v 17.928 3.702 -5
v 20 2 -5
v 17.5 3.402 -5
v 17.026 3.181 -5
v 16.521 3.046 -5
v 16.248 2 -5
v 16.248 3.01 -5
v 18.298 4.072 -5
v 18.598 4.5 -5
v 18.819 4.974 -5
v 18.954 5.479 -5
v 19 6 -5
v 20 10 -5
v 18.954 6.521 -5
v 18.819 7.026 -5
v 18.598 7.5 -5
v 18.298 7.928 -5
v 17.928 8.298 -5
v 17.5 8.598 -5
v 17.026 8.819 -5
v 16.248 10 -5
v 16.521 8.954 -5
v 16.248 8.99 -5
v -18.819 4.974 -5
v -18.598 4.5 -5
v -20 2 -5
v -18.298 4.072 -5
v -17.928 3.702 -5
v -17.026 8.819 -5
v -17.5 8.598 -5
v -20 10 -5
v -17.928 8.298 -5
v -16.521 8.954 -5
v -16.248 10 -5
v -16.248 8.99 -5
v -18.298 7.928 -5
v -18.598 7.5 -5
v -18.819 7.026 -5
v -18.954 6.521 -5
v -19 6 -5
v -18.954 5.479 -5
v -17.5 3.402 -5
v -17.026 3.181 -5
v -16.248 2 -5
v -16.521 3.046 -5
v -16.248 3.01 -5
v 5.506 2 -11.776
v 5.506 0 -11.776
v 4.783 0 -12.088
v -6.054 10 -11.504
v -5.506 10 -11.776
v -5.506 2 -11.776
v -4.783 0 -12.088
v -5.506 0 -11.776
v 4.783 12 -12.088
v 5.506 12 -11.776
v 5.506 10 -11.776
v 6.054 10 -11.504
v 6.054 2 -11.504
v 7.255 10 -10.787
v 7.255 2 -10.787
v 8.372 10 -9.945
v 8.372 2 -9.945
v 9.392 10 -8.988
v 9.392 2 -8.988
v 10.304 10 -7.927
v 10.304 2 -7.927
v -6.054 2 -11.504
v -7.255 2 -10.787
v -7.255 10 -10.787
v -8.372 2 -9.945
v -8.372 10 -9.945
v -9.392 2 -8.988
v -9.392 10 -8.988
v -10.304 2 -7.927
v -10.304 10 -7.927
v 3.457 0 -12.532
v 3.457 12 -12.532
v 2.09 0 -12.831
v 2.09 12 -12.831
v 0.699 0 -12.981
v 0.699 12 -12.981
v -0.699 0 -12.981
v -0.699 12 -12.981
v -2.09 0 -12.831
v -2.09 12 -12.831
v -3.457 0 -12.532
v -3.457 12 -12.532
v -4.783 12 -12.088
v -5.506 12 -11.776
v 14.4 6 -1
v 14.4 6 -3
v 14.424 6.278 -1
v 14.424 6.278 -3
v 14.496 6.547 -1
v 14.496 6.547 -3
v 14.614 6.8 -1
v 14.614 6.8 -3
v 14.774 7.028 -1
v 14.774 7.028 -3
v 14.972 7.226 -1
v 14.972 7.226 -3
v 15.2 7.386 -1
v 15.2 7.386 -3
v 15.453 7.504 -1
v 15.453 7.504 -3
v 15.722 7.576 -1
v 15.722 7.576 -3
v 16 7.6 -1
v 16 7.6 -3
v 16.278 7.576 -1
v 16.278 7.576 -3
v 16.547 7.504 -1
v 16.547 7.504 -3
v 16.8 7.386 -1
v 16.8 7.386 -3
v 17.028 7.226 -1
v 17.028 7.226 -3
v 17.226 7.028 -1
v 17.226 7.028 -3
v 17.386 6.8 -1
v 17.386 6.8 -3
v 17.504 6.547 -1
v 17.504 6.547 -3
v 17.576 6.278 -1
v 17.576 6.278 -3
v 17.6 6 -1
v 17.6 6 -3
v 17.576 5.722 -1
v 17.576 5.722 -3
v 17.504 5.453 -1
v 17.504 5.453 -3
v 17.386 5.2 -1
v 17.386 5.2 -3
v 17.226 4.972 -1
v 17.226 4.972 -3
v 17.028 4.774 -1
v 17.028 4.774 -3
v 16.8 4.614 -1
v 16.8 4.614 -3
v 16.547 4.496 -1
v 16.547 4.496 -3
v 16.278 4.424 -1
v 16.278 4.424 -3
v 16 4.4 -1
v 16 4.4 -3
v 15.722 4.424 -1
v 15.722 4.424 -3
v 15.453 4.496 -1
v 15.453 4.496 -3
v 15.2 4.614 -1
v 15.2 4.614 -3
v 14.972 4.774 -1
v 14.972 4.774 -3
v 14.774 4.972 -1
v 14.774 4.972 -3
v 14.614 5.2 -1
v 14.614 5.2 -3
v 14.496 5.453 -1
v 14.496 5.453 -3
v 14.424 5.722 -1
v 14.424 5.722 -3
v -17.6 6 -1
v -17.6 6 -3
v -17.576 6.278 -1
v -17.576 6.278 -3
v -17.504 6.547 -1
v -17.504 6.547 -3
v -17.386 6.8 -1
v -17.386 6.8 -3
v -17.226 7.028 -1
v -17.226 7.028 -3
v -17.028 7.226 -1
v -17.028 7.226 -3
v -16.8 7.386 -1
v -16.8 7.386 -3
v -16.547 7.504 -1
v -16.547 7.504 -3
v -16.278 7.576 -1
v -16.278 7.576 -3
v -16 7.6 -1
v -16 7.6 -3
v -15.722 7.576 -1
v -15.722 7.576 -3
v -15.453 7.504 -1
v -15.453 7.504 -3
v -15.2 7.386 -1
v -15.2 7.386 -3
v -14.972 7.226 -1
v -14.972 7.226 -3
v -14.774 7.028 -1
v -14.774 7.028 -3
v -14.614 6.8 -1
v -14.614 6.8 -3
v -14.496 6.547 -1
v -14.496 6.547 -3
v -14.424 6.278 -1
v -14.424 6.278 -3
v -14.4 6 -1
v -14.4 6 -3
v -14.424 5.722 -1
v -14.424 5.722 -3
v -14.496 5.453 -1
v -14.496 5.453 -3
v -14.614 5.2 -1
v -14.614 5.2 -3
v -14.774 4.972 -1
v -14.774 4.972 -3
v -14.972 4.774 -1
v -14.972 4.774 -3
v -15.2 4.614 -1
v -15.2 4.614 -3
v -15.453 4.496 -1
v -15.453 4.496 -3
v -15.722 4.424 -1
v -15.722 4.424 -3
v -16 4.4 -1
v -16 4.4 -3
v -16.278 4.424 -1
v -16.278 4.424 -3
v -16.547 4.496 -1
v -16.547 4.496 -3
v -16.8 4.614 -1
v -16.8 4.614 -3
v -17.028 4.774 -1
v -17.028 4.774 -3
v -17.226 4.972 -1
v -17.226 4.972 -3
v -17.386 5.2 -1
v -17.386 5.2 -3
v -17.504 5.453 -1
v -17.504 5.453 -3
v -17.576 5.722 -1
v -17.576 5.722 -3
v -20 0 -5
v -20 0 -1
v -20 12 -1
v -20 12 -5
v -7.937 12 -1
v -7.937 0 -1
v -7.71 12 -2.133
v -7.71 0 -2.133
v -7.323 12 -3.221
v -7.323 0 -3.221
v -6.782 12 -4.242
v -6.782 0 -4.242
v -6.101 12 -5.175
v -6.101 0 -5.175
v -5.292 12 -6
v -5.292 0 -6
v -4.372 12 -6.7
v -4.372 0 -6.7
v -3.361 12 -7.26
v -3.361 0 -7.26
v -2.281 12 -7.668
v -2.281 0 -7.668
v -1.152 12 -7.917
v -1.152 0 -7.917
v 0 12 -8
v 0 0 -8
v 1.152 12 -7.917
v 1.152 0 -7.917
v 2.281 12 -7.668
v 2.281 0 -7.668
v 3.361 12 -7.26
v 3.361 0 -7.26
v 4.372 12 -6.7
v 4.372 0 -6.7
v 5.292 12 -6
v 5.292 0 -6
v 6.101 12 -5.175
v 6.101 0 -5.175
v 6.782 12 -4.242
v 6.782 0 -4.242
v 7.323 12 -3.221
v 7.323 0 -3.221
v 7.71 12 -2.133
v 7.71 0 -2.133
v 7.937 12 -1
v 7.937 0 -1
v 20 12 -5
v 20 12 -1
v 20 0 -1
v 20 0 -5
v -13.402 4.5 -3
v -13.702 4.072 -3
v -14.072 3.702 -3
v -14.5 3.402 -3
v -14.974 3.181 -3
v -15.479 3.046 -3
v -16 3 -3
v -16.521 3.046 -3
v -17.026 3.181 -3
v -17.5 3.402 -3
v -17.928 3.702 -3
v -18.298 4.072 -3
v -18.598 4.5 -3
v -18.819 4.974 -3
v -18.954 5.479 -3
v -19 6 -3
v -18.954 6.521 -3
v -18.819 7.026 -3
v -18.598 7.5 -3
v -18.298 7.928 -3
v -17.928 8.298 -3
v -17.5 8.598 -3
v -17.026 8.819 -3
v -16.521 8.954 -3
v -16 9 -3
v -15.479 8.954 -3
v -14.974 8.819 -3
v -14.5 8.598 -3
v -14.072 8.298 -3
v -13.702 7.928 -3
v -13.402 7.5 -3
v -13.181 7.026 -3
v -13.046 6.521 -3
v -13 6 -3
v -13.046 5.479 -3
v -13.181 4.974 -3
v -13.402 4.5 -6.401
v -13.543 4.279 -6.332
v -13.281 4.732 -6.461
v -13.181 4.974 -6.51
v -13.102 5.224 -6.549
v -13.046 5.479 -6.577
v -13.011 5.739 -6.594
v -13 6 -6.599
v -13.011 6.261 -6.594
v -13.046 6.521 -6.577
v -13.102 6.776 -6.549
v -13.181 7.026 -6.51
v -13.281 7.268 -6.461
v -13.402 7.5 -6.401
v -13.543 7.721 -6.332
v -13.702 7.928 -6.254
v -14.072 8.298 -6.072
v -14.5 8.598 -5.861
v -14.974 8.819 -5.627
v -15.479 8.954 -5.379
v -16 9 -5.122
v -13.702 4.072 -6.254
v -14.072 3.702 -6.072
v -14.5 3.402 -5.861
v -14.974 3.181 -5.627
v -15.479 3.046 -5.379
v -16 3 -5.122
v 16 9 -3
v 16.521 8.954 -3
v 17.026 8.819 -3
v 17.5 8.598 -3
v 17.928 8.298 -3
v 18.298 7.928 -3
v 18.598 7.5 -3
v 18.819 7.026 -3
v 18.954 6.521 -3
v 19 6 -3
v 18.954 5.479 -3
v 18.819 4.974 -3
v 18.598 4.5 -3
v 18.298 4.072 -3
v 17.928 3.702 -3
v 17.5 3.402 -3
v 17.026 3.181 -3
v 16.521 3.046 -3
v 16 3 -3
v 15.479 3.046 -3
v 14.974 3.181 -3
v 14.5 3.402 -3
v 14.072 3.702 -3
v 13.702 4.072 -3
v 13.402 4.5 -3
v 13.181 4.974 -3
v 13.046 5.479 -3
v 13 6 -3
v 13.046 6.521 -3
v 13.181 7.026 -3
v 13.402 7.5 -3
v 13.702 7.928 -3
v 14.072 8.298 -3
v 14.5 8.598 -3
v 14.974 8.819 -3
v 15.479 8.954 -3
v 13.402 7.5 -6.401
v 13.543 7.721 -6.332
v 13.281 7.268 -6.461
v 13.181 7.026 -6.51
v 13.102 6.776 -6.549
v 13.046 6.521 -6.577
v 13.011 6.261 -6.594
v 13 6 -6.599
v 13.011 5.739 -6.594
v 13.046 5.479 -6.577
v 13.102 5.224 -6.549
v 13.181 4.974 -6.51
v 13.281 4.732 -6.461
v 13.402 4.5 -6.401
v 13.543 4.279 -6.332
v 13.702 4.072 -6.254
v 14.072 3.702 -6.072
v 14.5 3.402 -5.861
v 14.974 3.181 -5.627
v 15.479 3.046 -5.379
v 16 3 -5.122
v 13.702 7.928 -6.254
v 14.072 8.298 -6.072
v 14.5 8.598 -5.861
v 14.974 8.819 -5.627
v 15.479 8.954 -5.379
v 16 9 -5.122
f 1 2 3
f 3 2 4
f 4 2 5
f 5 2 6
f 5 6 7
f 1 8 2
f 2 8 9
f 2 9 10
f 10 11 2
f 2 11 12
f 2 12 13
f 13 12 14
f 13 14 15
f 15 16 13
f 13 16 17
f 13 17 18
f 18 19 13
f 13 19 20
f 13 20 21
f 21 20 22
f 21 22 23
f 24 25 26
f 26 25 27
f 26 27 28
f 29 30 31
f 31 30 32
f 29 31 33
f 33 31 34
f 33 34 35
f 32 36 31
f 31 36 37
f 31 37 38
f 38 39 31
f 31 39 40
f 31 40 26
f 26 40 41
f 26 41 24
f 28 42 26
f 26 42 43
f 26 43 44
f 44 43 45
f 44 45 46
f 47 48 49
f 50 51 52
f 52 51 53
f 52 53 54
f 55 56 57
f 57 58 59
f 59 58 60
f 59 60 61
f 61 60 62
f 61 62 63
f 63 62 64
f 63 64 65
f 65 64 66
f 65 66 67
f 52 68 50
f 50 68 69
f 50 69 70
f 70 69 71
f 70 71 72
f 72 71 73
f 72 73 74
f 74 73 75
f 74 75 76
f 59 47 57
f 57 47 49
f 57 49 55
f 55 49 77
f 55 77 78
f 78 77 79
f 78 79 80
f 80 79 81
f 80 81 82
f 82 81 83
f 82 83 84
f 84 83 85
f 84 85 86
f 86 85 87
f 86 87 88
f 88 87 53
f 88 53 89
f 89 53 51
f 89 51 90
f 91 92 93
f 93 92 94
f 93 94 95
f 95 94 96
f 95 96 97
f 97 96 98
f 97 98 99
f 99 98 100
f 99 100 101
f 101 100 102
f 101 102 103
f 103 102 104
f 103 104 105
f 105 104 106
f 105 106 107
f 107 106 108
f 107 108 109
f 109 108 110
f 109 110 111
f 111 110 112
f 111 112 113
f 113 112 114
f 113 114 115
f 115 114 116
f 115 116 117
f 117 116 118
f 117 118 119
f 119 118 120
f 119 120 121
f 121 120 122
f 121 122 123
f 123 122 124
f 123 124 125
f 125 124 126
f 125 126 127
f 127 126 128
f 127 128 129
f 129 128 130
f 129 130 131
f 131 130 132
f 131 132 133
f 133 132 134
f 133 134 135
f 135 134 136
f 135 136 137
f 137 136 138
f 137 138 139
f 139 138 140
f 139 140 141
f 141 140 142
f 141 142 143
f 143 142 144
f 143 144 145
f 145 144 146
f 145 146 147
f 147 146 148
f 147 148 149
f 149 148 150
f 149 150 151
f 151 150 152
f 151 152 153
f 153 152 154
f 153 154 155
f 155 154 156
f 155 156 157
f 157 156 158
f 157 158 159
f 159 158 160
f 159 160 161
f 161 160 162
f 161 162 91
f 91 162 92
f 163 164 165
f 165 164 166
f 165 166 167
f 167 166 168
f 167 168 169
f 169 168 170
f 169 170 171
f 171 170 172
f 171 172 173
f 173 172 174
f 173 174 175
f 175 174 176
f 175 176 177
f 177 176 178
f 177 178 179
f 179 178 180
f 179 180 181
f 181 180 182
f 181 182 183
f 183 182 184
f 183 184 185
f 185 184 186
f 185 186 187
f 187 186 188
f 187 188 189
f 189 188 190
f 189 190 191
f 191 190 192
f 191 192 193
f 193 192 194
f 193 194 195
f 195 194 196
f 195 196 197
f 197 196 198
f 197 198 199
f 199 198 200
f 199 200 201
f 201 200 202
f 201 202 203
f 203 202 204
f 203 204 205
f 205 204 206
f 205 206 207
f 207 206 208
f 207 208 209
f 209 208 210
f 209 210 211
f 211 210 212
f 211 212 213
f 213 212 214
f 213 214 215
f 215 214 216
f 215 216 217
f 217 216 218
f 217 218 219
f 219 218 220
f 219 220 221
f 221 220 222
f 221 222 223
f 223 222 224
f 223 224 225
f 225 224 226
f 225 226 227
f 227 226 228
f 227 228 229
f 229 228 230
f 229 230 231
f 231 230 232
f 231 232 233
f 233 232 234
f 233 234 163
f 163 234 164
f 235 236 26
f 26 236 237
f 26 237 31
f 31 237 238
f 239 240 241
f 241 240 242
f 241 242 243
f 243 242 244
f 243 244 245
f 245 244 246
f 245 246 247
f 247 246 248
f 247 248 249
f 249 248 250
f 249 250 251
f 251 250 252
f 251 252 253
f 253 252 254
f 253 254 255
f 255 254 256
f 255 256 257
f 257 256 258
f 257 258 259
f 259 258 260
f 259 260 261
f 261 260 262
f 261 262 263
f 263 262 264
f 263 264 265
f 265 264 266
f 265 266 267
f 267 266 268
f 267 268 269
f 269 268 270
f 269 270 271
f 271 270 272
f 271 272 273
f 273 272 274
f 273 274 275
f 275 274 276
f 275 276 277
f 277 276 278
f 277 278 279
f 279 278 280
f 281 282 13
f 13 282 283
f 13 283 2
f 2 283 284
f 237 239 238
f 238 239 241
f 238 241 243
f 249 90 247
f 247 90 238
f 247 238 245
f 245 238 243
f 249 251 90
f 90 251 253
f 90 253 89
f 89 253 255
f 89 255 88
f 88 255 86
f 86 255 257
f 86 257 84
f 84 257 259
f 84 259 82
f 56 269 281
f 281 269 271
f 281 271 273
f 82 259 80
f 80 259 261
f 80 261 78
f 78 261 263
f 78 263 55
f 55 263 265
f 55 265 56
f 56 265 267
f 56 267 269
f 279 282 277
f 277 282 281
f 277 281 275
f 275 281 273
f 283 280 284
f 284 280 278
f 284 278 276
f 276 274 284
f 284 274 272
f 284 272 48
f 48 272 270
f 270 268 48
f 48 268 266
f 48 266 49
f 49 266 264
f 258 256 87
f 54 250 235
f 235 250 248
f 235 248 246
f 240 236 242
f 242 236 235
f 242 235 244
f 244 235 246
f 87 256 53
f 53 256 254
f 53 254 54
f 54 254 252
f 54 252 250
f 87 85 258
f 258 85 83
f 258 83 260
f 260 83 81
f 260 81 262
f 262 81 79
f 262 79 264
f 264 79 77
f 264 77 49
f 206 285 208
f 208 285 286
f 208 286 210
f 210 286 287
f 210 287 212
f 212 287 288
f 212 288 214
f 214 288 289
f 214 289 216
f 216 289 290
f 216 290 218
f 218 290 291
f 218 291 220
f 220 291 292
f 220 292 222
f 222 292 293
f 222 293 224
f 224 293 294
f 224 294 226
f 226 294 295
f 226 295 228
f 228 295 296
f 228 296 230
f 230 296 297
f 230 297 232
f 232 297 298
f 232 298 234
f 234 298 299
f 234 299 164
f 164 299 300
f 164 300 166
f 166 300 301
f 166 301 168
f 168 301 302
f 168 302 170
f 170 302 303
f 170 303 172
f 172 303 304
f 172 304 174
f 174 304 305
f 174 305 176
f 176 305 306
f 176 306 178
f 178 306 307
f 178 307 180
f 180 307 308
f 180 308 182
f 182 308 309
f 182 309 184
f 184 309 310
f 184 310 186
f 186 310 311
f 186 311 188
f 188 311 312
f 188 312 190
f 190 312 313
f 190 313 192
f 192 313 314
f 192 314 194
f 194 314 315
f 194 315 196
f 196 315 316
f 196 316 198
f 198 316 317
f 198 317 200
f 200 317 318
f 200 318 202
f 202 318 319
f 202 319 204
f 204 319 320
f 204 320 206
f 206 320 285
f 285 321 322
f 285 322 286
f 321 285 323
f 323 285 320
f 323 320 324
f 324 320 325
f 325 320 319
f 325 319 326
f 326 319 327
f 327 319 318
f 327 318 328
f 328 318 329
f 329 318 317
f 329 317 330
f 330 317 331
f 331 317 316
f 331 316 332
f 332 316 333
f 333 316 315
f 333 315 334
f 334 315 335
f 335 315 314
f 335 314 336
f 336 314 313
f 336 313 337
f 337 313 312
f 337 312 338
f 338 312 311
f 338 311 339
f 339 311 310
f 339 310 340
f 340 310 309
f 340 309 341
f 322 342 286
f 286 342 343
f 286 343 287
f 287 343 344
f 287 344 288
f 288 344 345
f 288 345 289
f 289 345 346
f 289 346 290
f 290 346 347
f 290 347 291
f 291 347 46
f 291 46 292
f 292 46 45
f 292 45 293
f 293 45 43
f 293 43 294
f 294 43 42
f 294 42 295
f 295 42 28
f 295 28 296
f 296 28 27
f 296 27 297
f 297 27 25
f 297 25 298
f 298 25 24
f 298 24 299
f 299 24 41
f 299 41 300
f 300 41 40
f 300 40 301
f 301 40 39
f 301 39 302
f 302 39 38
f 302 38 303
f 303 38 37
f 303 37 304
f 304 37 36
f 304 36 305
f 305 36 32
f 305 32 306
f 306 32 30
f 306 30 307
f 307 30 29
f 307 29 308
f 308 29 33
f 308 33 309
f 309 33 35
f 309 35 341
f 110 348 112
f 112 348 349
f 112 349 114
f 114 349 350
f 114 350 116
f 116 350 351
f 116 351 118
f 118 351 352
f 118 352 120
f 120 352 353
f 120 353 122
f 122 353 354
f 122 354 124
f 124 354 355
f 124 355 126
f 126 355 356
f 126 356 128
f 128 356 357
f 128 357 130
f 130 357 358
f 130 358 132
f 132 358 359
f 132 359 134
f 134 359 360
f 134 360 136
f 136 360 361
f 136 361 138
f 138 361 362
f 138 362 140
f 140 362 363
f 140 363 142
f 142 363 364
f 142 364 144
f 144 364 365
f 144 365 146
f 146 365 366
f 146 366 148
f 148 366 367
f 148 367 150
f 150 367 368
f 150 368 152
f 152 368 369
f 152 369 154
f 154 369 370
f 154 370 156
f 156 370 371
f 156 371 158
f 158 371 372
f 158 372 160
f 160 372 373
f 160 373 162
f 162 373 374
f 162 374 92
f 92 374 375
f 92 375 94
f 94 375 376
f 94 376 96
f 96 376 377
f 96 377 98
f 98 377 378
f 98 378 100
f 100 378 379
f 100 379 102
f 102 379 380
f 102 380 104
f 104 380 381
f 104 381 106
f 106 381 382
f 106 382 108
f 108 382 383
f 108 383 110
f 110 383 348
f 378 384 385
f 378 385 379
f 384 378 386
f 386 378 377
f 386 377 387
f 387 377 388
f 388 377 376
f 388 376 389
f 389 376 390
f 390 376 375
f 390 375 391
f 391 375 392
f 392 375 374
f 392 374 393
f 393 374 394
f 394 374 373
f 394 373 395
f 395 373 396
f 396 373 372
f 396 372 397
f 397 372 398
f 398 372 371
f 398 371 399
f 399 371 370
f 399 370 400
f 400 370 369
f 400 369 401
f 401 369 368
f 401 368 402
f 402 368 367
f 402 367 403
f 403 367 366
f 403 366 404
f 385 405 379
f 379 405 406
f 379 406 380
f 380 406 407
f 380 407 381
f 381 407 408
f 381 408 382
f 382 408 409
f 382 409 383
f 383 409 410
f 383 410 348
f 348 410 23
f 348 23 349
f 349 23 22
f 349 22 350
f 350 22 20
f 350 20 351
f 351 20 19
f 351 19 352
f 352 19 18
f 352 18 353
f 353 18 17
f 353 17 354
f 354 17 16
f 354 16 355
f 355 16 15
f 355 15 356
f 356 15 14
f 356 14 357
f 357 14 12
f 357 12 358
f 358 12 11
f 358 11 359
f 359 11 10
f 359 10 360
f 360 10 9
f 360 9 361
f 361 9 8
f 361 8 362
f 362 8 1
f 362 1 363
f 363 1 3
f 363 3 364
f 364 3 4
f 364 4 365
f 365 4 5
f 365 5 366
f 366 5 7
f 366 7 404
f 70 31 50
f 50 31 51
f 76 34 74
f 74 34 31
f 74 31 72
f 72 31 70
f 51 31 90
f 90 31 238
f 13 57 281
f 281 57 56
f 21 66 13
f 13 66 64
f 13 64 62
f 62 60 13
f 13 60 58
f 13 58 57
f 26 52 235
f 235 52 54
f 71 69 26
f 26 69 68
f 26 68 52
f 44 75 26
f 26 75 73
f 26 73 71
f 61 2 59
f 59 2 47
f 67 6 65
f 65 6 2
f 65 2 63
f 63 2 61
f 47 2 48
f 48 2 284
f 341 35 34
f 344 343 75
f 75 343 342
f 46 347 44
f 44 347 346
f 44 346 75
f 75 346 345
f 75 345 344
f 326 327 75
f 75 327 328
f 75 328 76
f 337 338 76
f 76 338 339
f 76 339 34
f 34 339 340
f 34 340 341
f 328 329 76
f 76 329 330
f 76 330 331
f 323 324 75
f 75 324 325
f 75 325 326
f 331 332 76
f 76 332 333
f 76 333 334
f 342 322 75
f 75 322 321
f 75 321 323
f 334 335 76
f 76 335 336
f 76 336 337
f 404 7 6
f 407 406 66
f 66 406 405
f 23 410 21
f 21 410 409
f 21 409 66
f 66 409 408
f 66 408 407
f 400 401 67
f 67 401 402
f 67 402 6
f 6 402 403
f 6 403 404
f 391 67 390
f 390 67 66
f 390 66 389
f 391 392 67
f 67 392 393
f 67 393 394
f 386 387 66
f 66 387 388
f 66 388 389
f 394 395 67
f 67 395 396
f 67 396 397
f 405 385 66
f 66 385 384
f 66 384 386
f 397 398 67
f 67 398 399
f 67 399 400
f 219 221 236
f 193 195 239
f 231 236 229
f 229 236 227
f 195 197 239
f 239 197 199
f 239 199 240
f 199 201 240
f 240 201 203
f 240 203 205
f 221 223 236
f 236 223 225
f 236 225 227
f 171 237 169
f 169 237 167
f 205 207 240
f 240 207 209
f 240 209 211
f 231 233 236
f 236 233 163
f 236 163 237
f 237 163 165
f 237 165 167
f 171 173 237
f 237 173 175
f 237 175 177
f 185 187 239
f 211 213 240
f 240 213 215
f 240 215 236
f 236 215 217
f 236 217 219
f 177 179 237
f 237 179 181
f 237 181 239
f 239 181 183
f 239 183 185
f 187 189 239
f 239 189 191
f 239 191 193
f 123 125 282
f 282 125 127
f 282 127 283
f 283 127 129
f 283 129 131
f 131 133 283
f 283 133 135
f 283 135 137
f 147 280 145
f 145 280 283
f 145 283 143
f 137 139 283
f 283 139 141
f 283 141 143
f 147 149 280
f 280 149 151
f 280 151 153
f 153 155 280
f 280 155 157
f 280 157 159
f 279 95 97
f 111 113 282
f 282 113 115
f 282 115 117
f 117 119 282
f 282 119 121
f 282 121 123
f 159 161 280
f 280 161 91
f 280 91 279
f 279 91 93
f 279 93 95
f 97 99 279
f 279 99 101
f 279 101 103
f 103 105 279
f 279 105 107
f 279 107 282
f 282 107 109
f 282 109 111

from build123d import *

# Parameters (mm, degrees)
BOSS_EXTRUDE1_DEPTH  = 12
SKETCH2_R            = 1.6
CUT_EXTRUDE1_DEPTH   = 12
SKETCH3_R            = 3
CUT_EXTRUDE2_DEPTH   = 2
BOSS_EXTRUDE2_DEPTH  = 2
MIRROR2_COPY_1_DEPTH = 2
SKETCH5_W            = 40
SKETCH5_H            = 1
CUT_EXTRUDE3_DEPTH   = 20


with BuildPart() as part:
    # Sketch1 → Boss-Extrude1 (new body)
    with BuildSketch(Plane(origin=(0, 0, 0), x_dir=(1, 0, 0), z_dir=(0, 1, 0))):
        with BuildLine():
            Line((13, 0), (20, 0))
            Line((20, 0), (20, 5))
            Line((20, 5), (12, 5))
            ThreePointArc((12, 5), (12.747548784, 2.549509757), (13, 0))
        make_face()
        with BuildLine():
            Line((8, 0), (13, 0))
            ThreePointArc((13, 0), (12.747548784, 2.549509757), (12, 5))
            Line((12, 5), (6.244997998, 5))
            ThreePointArc((6.244997998, 5), (7.548509256, 2.649529771), (8, 0))
        make_face()
        with BuildLine():
            ThreePointArc((-12, 5), (-12.747548784, 2.549509757), (-13, 0))
            Line((-13, 0), (-8, 0))
            ThreePointArc((-8, 0), (-7.548509256, 2.649529771), (-6.244997998, 5))
            Line((-6.244997998, 5), (-12, 5))
        make_face()
        with BuildLine():
            Line((6.244997998, 5), (12, 5))
            ThreePointArc((12, 5), (0, 13), (-12, 5))
            Line((-12, 5), (-6.244997998, 5))
            ThreePointArc((-6.244997998, 5), (0, 8), (6.244997998, 5))
        make_face()
        with BuildLine():
            Line((-20, 0), (-13, 0))
            ThreePointArc((-13, 0), (-12.747548784, 2.549509757), (-12, 5))
            Line((-12, 5), (-20, 5))
            Line((-20, 5), (-20, 0))
        make_face()
    extrude(amount=BOSS_EXTRUDE1_DEPTH)

    # Sketch2 → Cut-Extrude1 (cut)
    with BuildSketch(Plane(origin=(0, 0, -5), x_dir=(-1, 0, 0), z_dir=(0, 0, -1))):
        with Locations((16, 6)):
            Circle(SKETCH2_R)
        with Locations((-16, 6)):
            Circle(SKETCH2_R)
    extrude(amount=-CUT_EXTRUDE1_DEPTH, mode=Mode.SUBTRACT)

    # Sketch3 → Cut-Extrude2 (cut)
    with BuildSketch(Plane(origin=(0, 0, -5), x_dir=(-1, 0, 0), z_dir=(0, 0, -1))):
        with Locations((16, 6)):
            Circle(SKETCH3_R)
        with Locations((-16, 6)):
            Circle(SKETCH3_R)
    extrude(amount=-CUT_EXTRUDE2_DEPTH, mode=Mode.SUBTRACT)

    # Sketch4 → Boss-Extrude2 (add)
    with BuildSketch(Plane(origin=(0, 12, 0), x_dir=(1, 0, 0), z_dir=(0, 1, 0))):
        Polygon((-20, 5), (-5.505882353, 11.776470588), (-3.437353346, 7.352116879), (-12, 5), align=None)
    boss_extrude2 = extrude(amount=-BOSS_EXTRUDE2_DEPTH)

    # Mirror1: Boss-Extrude2 across plane
    add(boss_extrude2.mirror(Plane(origin=(0, 0, 0), x_dir=(0, 0, 1), z_dir=(1, 0, 0))))

    # Mirror2: Boss-Extrude2 across plane
    add(boss_extrude2.mirror(Plane.ZX.offset(6)))

    # Mirror2 copy 1 sketch → Mirror2 copy 1 (add)
    with BuildSketch(Plane(origin=(0, 0, 0), x_dir=(-1, 0, 0), z_dir=(0, -1, 0))):
        Polygon((-20, 5), (-5.505882353, 11.776470588), (-3.437353346, 7.352116879), (-12, 5), align=None)
    extrude(amount=-MIRROR2_COPY_1_DEPTH)

    # Chamfer1
    # the kernel refuses this chamfer: 5 mm, written as the material it adds along each edge
    with BuildSketch(Plane(origin=(-12, 2, -5), x_dir=(0.5282334615554308, 0, -0.8490991756521539), z_dir=(0, 1, 0))) as chamfer1_piece_1_section:
        with BuildLine():
            Line((3.55102746, 0), (-2.413771098, 3.712725473))
            Line((-2.413771098, 3.712725473), (-2.498681015, 3.659902127))
            ThreePointArc((-2.498681015, 3.659902127), (-1.254288539, 1.826872841), (-0.084909918, -0.052823346))
            Line((-0.084909918, -0.052823346), (0.016102351, -0.098695057))
            ThreePointArc((0.016102351, -0.098695057), (1.773886736, 0.065687387), (3.541120329, -0.099508034))
            Line((3.541120329, -0.099508034), (3.55102746, 0))
        make_face()
    chamfer1_piece_1 = extrude(amount=8, mode=Mode.PRIVATE)
    chamfer1_piece_1 = chamfer1_piece_1 - Plane(origin=(-16, 6, -6.086552006), x_dir=(-1, 0, 0), z_dir=(0, 0, -1)) * Cylinder(3, 31, mode=Mode.PRIVATE)
    add(chamfer1_piece_1)
    with BuildSketch(Plane(origin=(12, 2, -5), x_dir=(0.9998009840016291, 0, 0.01994974659924107), z_dir=(0, 1, 0))) as chamfer1_piece_2_section:
        with BuildLine():
            Line((4.428388121, 0), (-1.935550186, 2.977153255))
            Line((-1.935550186, 2.977153255), (-2.013576875, 2.914608585))
            ThreePointArc((-2.013576875, 2.914608585), (-0.911816487, 1.523016637), (-0.091522024, -0.040295399))
            Line((-0.091522024, -0.040295399), (0.001994975, -0.099980098))
            ThreePointArc((0.001994975, -0.099980098), (2.215307803, -0.055816279), (4.430383096, -0.099980098))
            Line((4.430383096, -0.099980098), (4.428388121, 0))
        make_face()
    chamfer1_piece_2 = extrude(amount=8, mode=Mode.PRIVATE)
    chamfer1_piece_2 = chamfer1_piece_2 - Plane(origin=(16, 6, -6.086550713), x_dir=(-1, 0, 0), z_dir=(0, 0, -1)) * Cylinder(3, 34, mode=Mode.PRIVATE)
    add(chamfer1_piece_2)

    # Sketch5 → Cut-Extrude3 (cut)
    with BuildSketch(Plane.XZ):
        with Locations((0, -0.5)):
            Rectangle(SKETCH5_W, SKETCH5_H)
    extrude(amount=-CUT_EXTRUDE3_DEPTH, mode=Mode.SUBTRACT)


solid = part.part
